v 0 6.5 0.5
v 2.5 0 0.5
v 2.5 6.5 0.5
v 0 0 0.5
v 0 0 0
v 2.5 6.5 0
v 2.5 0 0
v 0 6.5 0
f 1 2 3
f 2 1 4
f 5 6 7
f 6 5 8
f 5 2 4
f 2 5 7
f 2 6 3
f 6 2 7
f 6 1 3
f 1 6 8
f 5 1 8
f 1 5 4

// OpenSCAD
/* Warning, this is a very basic generator with a lot of approximation 
input data : [CONTACT, LAB, 2.5x6.5x0.5mm, 3, , A, C04-21303A]
generated by com.zoubworld.electronics.cad.model3d.Basic
Date : Sun Feb 15 10:50:49 CET 2026
*/

//body
color("black")
translate([0,0,0])
cube([2.5,6.5,0.5], center=false);
